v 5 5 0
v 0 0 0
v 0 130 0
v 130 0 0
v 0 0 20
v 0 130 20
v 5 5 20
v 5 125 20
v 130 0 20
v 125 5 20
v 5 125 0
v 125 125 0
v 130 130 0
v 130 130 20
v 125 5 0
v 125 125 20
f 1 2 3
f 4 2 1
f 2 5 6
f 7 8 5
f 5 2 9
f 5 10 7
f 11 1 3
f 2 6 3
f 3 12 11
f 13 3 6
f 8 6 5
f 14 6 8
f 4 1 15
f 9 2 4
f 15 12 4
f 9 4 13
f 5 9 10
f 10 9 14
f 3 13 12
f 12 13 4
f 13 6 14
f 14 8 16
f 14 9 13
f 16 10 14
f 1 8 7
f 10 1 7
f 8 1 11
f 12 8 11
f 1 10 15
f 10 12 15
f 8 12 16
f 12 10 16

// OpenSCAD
// Frame for city model
// Outer size: 130.0mm x 130.0mm x 20mm
// Inner size: 120.0mm x 120.0mm x 20mm
// Frame width: 5mm

difference() {
    cube([130.0, 130.0, 20]);
    translate([5, 5, 0])
        cube([120.0, 120.0, 20]);
}
